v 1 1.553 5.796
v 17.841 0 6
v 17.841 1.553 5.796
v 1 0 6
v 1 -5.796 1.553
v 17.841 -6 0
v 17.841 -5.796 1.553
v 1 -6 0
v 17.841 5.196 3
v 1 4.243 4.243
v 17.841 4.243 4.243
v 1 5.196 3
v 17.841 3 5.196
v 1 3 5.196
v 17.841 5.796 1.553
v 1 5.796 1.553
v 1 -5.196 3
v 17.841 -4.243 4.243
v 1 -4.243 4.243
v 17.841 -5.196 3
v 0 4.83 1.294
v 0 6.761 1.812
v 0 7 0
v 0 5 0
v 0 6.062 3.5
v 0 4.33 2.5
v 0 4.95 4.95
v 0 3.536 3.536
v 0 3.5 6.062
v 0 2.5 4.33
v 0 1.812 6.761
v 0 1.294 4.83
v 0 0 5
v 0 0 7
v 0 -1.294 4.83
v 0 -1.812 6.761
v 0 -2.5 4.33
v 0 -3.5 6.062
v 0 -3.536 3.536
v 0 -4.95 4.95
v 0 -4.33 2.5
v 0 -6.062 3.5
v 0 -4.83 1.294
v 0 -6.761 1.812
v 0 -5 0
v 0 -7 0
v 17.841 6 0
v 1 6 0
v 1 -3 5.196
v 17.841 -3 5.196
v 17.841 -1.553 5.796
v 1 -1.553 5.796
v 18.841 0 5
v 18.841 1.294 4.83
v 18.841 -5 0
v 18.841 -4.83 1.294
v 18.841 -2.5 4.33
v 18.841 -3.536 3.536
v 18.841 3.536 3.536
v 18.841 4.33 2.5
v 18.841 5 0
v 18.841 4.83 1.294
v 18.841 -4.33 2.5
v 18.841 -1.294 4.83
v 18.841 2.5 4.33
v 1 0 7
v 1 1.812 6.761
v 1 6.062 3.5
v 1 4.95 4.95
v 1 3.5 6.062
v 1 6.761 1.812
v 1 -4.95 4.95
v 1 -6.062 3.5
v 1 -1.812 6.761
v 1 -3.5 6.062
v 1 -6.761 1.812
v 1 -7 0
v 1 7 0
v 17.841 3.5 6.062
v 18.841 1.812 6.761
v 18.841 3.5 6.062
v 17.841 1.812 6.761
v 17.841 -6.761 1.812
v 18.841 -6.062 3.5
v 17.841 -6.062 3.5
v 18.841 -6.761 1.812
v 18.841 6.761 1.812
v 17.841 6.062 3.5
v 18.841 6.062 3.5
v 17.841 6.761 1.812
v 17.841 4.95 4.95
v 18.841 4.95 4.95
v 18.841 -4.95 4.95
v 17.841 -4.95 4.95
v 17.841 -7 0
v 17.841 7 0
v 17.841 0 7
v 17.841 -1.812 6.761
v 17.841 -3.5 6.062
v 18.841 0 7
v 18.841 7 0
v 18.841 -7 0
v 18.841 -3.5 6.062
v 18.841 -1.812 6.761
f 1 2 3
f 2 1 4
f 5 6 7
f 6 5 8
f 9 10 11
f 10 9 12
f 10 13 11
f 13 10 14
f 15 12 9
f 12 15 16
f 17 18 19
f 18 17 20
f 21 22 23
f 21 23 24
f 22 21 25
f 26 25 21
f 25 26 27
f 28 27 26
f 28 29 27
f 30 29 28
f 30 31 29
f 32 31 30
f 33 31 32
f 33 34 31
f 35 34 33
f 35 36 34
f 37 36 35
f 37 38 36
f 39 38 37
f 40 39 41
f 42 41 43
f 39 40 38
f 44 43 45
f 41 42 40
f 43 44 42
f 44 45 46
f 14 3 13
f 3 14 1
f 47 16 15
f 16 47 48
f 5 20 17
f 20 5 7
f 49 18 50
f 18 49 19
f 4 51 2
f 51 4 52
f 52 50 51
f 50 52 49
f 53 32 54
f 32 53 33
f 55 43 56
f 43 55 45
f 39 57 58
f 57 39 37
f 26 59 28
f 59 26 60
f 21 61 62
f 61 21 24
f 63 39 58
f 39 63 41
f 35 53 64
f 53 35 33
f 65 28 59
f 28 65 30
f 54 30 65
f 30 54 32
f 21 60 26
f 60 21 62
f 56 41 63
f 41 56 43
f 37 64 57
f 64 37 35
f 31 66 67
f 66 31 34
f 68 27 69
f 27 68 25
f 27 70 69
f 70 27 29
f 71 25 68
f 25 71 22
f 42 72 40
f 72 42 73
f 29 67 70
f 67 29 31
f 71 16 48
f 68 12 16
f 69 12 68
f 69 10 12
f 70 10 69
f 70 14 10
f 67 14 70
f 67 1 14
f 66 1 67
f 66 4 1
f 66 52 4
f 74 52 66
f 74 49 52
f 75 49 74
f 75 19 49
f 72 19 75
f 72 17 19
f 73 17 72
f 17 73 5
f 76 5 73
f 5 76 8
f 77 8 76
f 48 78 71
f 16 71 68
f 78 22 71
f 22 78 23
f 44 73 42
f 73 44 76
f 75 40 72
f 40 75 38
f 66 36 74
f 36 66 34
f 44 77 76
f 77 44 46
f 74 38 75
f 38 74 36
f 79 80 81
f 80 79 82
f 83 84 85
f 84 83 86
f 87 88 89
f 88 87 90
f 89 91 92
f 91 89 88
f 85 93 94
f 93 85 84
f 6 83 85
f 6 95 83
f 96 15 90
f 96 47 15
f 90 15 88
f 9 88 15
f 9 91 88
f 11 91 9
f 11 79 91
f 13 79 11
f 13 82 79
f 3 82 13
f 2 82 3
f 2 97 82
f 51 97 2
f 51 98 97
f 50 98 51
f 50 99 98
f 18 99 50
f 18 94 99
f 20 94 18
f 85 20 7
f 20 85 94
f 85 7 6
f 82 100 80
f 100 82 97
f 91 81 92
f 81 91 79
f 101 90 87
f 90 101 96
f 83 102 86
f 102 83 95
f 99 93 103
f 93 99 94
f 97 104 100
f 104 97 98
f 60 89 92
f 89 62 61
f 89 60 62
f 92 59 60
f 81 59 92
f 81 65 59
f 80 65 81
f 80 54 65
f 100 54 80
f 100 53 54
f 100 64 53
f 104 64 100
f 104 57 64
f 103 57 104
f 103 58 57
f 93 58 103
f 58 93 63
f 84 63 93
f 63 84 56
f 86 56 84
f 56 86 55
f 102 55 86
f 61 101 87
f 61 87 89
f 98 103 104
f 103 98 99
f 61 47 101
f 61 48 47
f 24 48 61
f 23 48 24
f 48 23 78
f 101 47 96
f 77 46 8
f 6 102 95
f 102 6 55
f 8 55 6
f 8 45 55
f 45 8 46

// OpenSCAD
// file: ../build_environments.scad
// build_environments.scad: modules to build level sections
//

module pool(diameter=10.0, wall_height=2.0, step_width=3.0, connections=[])
{
    difference() {
        union() {
        difference() {
            cylinder(h=0.5,r1=diameter+step_width,r2=diameter+step_width,$fn=48);
            translate([0,0,-0.1])
                cylinder(h=0.7,r1=diameter,r2=diameter,$fn=48);
        }
        difference() {
            cylinder(h=wall_height,r1=diameter+step_width+1.0,r2=diameter+step_width+1.0,$fn=48);
            translate([0,0,-0.1])
                cylinder(h=wall_height+0.2,r1=diameter+step_width,r2=diameter+step_width,$fn=48);
        }
        }
    
        for (c = connections)
        {
            rotate([0,90,0]) {
                angle = atan2(c[1],c[0]);
                rotate([-angle,0,0]) {
                    cylinder(h=diameter+5.0,r1=c[2],r2=c[2],$fn=48);
                }
            }
        }
    }
}

module straight(length=10.0, width=2.0, dy1=0.0, dy2=0.0, dz=0.0)
{
    dims = [0, 0, 0, 0, 0, (dz/length)];
    matrix = [
        [ 1, dims[0], dims[1], 0 ],
        [ dims[2], 1, dims[4], 0 ],
        [ dims[5], dims[3], 1, 0 ],
        [ 0, 0, 0, 1 ]
    ];
    multmatrix(matrix)
    difference() {
        translate([dy1,0,0])
        union() {
            rotate([0,90,0]) {
                difference() {
                    cylinder(h=(length-dy1-dy2),r1=width+1.0,r2=width+1.0,$fn=24);
                    translate([0,0,-0.1])
                        cylinder(h=(length-dy1-dy2+0.2),r1=width,r2=width,$fn=24);
                }
                difference() {
                    cylinder(h=1.0,r1=width+2.0,r2=width+2.0,$fn=24);
                    translate([0,0,-0.1])
                        cylinder(h=1.2,r1=width,r2=width,$fn=24);
                }
                translate([0,0,(length-dy1-dy2)-1.0]) {
                    difference() {
                        cylinder(h=1.0,r1=width+2.0,r2=width+2.0,$fn=24);
                        translate([0,0,-0.1])
                            cylinder(h=1.2,r1=width,r2=width,$fn=24);
                    }
                }
            }
        }
        translate([0,0,-(2*width+4.0)/2])
            cube([3*length,3*length,2*width+4.0],center=true);
    }
}

module curve(p0=[0,0], center=[0,0], dir=1, angle=0.0, width=2.0)
{
    radius = sqrt((p0[0]-center[0])*(p0[0]-center[0]) + (p0[1]-center[1])*(p0[1]-center[1]));
    if (dir == 0) {
        difference() {
            rotate([0,0,-90])
            difference() {
                rotate_extrude(angle = angle, convexity = 10, $fn=32)
                    translate([radius, 0, 0])
                        circle(r = width+1.0,$fn=24);
                rotate([0,0,-1.0])
                    rotate_extrude(angle = angle+2.0, convexity = 10, $fn=32)
                        translate([radius, 0, 0])
                            circle(r = width,$fn=24);
            }
            translate([0,0,-(2*width+4.0)/2])
                cube([5*radius,5*radius,2*width+4.0],center=true);
        }
    }
    else {
        difference() {
            rotate([0,0,90])
            difference() {
                rotate_extrude(angle = -angle, convexity = 10, $fn=32)
                    translate([radius, 0, 0])
                        circle(r = width+1.0,$fn=24);
                rotate([0,0,1.0])
                    rotate_extrude(angle = -angle-2.0, convexity = 10, $fn=32)
                        translate([radius, 0, 0])
                            circle(r = width,$fn=24);
            }
            translate([0,0,-(2*width+4.0)/2])
                cube([5*radius,5*radius,2*width+4.0],center=true);
        }
    }

}

// test pool
//pool(diameter=12.0000, wall_height=3.0000, step_width=3.0000, connections=[[0.0000,-26.0000,2.0000], [23.6074,0.0000,2.0000]]);

// test straight, slope
//straight(length=26.0000, width=2.0000, dy1=11.8322, dy2=6.7082, dz=0.0000);
//straight(length=29.1549, width=12.0000, dy1=0.0000, dy2=0.0000, dz=-15.0000);

// test curve
//curve(p0=[23.6074, 0.0000], center=[23.6074, 5.0000], dir=0, angle=60.1011, width=2.0000);
//curve(p0=[33.6426, 12.4219], center=[37.9771, 9.9295], dir=1, angle=120.4627, width=2.0000);
// main file
use <../build_environments.scad>;
straight(length=18.8409, width=5.0000, dy1=0.0000, dy2=0.0000, dz=0.0000);
